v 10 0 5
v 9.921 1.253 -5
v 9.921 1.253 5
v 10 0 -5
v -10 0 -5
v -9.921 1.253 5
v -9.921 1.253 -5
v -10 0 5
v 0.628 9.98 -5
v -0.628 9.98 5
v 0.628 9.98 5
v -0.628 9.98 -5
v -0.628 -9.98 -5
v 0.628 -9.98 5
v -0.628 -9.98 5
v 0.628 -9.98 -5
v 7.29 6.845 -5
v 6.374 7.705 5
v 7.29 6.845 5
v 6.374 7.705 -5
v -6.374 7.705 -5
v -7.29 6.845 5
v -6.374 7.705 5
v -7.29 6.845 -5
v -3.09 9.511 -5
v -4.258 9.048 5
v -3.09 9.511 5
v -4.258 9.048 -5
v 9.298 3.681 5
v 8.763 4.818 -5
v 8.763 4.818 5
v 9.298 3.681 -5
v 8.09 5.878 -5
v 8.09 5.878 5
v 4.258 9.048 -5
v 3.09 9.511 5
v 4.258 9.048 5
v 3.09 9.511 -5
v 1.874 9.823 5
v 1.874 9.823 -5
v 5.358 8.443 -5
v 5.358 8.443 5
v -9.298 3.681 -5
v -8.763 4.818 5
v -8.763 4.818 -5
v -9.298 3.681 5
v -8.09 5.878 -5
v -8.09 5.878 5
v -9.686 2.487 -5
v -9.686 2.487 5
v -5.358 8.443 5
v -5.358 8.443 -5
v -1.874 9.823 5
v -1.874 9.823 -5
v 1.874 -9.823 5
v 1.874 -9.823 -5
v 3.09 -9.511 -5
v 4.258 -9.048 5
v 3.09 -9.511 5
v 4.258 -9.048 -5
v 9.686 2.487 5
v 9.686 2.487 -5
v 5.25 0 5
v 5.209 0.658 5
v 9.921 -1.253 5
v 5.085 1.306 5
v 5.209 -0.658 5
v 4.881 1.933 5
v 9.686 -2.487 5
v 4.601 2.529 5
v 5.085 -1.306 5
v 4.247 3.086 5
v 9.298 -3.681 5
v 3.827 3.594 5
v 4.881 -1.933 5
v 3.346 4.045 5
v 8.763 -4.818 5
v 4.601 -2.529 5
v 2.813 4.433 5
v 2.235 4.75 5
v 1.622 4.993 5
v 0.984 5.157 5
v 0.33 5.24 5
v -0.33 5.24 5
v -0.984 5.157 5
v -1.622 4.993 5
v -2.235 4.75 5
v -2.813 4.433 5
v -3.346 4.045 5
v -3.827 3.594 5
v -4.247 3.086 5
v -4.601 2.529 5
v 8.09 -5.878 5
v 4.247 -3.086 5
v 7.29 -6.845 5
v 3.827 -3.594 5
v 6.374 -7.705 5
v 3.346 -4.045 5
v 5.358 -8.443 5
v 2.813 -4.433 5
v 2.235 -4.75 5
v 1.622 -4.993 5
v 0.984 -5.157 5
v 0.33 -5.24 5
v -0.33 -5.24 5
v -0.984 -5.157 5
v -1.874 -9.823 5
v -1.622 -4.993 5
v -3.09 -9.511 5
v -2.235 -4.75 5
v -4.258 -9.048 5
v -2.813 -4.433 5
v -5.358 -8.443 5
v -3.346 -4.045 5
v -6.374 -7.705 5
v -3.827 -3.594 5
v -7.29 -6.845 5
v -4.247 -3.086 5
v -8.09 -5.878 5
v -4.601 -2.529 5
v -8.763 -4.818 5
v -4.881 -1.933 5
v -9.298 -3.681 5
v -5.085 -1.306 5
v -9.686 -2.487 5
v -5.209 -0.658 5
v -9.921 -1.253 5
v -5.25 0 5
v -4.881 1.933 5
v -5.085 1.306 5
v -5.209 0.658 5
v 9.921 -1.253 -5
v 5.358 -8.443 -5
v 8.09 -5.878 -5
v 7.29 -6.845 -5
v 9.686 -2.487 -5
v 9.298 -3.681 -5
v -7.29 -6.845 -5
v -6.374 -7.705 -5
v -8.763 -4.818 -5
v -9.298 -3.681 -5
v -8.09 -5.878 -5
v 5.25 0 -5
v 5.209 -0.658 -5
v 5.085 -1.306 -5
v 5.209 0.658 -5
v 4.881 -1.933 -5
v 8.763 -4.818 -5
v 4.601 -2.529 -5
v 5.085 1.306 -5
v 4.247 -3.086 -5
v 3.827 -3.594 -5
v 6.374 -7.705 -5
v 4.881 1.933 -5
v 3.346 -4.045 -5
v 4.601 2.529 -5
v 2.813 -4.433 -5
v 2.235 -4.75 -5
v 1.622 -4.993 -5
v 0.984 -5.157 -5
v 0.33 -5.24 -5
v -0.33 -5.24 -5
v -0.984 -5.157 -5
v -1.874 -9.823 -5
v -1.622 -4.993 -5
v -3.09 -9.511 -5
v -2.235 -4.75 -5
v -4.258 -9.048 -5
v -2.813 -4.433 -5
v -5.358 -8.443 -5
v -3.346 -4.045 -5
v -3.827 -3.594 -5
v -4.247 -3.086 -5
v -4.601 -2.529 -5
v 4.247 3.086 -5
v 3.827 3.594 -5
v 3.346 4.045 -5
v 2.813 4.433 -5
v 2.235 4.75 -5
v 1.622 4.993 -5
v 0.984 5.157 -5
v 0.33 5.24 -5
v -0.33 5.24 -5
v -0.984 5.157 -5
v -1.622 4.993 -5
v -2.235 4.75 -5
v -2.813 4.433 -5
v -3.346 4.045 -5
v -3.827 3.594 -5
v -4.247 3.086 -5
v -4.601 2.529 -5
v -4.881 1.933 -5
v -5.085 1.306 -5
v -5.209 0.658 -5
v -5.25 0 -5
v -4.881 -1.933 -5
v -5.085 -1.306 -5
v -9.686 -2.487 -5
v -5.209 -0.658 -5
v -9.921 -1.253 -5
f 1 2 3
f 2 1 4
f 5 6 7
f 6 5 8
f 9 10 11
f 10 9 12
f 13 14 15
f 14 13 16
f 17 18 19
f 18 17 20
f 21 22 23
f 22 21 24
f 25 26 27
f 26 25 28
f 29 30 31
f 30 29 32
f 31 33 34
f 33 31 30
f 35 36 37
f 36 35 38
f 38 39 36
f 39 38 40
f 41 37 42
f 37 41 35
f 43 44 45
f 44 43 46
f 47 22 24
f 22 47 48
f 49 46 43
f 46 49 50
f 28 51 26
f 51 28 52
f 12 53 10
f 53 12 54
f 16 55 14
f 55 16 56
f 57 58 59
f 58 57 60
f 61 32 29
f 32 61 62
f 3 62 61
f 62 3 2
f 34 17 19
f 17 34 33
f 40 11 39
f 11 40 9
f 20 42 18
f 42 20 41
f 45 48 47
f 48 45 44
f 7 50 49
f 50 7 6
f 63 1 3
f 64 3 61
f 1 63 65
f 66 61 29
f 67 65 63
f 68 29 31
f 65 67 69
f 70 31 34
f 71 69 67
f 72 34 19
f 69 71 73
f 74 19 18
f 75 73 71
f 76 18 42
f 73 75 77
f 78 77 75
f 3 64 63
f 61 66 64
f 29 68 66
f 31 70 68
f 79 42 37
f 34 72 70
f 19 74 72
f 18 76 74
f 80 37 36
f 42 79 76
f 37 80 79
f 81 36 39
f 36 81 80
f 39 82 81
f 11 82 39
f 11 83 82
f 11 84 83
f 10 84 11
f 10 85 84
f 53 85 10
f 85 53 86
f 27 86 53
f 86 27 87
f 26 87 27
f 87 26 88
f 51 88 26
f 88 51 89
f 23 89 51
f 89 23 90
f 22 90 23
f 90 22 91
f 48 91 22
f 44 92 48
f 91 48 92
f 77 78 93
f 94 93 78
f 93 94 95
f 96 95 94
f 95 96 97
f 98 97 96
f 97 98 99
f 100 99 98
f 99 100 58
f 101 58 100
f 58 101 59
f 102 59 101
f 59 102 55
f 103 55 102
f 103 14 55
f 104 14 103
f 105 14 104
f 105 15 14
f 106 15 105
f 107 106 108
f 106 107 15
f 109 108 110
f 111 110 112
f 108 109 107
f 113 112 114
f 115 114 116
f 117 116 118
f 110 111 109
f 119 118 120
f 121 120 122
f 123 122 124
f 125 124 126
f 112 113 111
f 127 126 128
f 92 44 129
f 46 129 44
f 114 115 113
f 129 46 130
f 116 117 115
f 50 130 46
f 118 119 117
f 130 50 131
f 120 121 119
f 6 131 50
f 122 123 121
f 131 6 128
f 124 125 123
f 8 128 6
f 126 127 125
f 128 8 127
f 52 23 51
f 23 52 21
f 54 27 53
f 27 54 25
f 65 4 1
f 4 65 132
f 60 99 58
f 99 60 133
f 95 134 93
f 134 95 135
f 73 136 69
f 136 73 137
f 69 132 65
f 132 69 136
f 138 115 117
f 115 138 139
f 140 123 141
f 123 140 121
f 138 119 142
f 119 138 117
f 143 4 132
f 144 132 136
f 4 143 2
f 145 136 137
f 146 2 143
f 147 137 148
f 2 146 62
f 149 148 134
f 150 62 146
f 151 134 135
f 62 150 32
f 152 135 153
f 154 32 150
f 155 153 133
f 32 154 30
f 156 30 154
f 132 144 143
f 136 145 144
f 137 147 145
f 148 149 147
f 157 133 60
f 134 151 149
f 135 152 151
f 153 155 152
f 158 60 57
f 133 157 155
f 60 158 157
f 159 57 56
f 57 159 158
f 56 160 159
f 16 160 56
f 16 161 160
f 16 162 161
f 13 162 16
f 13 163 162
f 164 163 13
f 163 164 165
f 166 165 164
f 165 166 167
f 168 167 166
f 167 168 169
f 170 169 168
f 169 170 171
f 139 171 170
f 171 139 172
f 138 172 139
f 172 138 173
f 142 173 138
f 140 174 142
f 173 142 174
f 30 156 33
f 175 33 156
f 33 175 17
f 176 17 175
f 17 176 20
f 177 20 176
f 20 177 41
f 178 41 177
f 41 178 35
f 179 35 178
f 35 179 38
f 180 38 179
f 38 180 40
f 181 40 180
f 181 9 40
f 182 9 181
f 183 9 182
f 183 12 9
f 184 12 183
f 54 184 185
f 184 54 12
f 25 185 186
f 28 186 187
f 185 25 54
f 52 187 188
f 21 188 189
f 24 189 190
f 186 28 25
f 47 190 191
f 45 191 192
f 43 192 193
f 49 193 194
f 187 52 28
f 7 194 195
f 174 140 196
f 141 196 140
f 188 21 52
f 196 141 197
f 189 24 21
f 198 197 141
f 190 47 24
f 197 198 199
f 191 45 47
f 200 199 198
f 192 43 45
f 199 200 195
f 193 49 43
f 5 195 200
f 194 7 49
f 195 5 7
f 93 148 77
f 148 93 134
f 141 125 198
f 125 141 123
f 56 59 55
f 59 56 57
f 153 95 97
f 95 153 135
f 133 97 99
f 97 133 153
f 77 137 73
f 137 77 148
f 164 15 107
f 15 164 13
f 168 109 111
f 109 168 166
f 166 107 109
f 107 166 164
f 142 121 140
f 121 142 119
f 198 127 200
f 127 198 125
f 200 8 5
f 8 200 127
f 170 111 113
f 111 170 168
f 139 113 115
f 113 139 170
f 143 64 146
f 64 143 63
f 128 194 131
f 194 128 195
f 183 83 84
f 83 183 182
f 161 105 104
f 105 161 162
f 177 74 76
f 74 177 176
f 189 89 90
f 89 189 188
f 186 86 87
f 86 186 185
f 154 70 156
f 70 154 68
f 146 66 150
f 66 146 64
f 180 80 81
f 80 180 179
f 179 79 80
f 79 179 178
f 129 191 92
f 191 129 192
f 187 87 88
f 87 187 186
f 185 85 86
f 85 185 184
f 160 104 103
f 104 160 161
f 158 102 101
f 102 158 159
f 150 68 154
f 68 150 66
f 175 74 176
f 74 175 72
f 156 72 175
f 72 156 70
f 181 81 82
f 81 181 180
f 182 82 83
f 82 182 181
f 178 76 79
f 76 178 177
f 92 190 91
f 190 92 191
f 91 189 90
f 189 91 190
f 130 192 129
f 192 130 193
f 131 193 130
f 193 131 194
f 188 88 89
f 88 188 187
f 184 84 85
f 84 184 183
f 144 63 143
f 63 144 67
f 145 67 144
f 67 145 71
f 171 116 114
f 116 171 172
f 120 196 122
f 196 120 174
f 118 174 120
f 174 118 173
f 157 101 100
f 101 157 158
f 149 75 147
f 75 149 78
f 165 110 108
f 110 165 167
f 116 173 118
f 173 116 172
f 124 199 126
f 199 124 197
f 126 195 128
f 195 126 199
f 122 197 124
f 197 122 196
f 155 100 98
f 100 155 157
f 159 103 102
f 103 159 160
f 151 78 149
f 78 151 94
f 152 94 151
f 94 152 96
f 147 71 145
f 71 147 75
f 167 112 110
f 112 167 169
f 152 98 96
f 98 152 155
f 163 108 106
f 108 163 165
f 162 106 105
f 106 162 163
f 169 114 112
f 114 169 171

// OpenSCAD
$fn = 50;


difference() {
	union() {
		translate(v = [0, 0, -5.0000000000]) {
			cylinder(h = 10, r = 10.0000000000);
		}
	}
	union() {
		translate(v = [0, 0, -100.0000000000]) {
			cylinder(h = 200, r = 5.2500000000);
		}
	}
}
